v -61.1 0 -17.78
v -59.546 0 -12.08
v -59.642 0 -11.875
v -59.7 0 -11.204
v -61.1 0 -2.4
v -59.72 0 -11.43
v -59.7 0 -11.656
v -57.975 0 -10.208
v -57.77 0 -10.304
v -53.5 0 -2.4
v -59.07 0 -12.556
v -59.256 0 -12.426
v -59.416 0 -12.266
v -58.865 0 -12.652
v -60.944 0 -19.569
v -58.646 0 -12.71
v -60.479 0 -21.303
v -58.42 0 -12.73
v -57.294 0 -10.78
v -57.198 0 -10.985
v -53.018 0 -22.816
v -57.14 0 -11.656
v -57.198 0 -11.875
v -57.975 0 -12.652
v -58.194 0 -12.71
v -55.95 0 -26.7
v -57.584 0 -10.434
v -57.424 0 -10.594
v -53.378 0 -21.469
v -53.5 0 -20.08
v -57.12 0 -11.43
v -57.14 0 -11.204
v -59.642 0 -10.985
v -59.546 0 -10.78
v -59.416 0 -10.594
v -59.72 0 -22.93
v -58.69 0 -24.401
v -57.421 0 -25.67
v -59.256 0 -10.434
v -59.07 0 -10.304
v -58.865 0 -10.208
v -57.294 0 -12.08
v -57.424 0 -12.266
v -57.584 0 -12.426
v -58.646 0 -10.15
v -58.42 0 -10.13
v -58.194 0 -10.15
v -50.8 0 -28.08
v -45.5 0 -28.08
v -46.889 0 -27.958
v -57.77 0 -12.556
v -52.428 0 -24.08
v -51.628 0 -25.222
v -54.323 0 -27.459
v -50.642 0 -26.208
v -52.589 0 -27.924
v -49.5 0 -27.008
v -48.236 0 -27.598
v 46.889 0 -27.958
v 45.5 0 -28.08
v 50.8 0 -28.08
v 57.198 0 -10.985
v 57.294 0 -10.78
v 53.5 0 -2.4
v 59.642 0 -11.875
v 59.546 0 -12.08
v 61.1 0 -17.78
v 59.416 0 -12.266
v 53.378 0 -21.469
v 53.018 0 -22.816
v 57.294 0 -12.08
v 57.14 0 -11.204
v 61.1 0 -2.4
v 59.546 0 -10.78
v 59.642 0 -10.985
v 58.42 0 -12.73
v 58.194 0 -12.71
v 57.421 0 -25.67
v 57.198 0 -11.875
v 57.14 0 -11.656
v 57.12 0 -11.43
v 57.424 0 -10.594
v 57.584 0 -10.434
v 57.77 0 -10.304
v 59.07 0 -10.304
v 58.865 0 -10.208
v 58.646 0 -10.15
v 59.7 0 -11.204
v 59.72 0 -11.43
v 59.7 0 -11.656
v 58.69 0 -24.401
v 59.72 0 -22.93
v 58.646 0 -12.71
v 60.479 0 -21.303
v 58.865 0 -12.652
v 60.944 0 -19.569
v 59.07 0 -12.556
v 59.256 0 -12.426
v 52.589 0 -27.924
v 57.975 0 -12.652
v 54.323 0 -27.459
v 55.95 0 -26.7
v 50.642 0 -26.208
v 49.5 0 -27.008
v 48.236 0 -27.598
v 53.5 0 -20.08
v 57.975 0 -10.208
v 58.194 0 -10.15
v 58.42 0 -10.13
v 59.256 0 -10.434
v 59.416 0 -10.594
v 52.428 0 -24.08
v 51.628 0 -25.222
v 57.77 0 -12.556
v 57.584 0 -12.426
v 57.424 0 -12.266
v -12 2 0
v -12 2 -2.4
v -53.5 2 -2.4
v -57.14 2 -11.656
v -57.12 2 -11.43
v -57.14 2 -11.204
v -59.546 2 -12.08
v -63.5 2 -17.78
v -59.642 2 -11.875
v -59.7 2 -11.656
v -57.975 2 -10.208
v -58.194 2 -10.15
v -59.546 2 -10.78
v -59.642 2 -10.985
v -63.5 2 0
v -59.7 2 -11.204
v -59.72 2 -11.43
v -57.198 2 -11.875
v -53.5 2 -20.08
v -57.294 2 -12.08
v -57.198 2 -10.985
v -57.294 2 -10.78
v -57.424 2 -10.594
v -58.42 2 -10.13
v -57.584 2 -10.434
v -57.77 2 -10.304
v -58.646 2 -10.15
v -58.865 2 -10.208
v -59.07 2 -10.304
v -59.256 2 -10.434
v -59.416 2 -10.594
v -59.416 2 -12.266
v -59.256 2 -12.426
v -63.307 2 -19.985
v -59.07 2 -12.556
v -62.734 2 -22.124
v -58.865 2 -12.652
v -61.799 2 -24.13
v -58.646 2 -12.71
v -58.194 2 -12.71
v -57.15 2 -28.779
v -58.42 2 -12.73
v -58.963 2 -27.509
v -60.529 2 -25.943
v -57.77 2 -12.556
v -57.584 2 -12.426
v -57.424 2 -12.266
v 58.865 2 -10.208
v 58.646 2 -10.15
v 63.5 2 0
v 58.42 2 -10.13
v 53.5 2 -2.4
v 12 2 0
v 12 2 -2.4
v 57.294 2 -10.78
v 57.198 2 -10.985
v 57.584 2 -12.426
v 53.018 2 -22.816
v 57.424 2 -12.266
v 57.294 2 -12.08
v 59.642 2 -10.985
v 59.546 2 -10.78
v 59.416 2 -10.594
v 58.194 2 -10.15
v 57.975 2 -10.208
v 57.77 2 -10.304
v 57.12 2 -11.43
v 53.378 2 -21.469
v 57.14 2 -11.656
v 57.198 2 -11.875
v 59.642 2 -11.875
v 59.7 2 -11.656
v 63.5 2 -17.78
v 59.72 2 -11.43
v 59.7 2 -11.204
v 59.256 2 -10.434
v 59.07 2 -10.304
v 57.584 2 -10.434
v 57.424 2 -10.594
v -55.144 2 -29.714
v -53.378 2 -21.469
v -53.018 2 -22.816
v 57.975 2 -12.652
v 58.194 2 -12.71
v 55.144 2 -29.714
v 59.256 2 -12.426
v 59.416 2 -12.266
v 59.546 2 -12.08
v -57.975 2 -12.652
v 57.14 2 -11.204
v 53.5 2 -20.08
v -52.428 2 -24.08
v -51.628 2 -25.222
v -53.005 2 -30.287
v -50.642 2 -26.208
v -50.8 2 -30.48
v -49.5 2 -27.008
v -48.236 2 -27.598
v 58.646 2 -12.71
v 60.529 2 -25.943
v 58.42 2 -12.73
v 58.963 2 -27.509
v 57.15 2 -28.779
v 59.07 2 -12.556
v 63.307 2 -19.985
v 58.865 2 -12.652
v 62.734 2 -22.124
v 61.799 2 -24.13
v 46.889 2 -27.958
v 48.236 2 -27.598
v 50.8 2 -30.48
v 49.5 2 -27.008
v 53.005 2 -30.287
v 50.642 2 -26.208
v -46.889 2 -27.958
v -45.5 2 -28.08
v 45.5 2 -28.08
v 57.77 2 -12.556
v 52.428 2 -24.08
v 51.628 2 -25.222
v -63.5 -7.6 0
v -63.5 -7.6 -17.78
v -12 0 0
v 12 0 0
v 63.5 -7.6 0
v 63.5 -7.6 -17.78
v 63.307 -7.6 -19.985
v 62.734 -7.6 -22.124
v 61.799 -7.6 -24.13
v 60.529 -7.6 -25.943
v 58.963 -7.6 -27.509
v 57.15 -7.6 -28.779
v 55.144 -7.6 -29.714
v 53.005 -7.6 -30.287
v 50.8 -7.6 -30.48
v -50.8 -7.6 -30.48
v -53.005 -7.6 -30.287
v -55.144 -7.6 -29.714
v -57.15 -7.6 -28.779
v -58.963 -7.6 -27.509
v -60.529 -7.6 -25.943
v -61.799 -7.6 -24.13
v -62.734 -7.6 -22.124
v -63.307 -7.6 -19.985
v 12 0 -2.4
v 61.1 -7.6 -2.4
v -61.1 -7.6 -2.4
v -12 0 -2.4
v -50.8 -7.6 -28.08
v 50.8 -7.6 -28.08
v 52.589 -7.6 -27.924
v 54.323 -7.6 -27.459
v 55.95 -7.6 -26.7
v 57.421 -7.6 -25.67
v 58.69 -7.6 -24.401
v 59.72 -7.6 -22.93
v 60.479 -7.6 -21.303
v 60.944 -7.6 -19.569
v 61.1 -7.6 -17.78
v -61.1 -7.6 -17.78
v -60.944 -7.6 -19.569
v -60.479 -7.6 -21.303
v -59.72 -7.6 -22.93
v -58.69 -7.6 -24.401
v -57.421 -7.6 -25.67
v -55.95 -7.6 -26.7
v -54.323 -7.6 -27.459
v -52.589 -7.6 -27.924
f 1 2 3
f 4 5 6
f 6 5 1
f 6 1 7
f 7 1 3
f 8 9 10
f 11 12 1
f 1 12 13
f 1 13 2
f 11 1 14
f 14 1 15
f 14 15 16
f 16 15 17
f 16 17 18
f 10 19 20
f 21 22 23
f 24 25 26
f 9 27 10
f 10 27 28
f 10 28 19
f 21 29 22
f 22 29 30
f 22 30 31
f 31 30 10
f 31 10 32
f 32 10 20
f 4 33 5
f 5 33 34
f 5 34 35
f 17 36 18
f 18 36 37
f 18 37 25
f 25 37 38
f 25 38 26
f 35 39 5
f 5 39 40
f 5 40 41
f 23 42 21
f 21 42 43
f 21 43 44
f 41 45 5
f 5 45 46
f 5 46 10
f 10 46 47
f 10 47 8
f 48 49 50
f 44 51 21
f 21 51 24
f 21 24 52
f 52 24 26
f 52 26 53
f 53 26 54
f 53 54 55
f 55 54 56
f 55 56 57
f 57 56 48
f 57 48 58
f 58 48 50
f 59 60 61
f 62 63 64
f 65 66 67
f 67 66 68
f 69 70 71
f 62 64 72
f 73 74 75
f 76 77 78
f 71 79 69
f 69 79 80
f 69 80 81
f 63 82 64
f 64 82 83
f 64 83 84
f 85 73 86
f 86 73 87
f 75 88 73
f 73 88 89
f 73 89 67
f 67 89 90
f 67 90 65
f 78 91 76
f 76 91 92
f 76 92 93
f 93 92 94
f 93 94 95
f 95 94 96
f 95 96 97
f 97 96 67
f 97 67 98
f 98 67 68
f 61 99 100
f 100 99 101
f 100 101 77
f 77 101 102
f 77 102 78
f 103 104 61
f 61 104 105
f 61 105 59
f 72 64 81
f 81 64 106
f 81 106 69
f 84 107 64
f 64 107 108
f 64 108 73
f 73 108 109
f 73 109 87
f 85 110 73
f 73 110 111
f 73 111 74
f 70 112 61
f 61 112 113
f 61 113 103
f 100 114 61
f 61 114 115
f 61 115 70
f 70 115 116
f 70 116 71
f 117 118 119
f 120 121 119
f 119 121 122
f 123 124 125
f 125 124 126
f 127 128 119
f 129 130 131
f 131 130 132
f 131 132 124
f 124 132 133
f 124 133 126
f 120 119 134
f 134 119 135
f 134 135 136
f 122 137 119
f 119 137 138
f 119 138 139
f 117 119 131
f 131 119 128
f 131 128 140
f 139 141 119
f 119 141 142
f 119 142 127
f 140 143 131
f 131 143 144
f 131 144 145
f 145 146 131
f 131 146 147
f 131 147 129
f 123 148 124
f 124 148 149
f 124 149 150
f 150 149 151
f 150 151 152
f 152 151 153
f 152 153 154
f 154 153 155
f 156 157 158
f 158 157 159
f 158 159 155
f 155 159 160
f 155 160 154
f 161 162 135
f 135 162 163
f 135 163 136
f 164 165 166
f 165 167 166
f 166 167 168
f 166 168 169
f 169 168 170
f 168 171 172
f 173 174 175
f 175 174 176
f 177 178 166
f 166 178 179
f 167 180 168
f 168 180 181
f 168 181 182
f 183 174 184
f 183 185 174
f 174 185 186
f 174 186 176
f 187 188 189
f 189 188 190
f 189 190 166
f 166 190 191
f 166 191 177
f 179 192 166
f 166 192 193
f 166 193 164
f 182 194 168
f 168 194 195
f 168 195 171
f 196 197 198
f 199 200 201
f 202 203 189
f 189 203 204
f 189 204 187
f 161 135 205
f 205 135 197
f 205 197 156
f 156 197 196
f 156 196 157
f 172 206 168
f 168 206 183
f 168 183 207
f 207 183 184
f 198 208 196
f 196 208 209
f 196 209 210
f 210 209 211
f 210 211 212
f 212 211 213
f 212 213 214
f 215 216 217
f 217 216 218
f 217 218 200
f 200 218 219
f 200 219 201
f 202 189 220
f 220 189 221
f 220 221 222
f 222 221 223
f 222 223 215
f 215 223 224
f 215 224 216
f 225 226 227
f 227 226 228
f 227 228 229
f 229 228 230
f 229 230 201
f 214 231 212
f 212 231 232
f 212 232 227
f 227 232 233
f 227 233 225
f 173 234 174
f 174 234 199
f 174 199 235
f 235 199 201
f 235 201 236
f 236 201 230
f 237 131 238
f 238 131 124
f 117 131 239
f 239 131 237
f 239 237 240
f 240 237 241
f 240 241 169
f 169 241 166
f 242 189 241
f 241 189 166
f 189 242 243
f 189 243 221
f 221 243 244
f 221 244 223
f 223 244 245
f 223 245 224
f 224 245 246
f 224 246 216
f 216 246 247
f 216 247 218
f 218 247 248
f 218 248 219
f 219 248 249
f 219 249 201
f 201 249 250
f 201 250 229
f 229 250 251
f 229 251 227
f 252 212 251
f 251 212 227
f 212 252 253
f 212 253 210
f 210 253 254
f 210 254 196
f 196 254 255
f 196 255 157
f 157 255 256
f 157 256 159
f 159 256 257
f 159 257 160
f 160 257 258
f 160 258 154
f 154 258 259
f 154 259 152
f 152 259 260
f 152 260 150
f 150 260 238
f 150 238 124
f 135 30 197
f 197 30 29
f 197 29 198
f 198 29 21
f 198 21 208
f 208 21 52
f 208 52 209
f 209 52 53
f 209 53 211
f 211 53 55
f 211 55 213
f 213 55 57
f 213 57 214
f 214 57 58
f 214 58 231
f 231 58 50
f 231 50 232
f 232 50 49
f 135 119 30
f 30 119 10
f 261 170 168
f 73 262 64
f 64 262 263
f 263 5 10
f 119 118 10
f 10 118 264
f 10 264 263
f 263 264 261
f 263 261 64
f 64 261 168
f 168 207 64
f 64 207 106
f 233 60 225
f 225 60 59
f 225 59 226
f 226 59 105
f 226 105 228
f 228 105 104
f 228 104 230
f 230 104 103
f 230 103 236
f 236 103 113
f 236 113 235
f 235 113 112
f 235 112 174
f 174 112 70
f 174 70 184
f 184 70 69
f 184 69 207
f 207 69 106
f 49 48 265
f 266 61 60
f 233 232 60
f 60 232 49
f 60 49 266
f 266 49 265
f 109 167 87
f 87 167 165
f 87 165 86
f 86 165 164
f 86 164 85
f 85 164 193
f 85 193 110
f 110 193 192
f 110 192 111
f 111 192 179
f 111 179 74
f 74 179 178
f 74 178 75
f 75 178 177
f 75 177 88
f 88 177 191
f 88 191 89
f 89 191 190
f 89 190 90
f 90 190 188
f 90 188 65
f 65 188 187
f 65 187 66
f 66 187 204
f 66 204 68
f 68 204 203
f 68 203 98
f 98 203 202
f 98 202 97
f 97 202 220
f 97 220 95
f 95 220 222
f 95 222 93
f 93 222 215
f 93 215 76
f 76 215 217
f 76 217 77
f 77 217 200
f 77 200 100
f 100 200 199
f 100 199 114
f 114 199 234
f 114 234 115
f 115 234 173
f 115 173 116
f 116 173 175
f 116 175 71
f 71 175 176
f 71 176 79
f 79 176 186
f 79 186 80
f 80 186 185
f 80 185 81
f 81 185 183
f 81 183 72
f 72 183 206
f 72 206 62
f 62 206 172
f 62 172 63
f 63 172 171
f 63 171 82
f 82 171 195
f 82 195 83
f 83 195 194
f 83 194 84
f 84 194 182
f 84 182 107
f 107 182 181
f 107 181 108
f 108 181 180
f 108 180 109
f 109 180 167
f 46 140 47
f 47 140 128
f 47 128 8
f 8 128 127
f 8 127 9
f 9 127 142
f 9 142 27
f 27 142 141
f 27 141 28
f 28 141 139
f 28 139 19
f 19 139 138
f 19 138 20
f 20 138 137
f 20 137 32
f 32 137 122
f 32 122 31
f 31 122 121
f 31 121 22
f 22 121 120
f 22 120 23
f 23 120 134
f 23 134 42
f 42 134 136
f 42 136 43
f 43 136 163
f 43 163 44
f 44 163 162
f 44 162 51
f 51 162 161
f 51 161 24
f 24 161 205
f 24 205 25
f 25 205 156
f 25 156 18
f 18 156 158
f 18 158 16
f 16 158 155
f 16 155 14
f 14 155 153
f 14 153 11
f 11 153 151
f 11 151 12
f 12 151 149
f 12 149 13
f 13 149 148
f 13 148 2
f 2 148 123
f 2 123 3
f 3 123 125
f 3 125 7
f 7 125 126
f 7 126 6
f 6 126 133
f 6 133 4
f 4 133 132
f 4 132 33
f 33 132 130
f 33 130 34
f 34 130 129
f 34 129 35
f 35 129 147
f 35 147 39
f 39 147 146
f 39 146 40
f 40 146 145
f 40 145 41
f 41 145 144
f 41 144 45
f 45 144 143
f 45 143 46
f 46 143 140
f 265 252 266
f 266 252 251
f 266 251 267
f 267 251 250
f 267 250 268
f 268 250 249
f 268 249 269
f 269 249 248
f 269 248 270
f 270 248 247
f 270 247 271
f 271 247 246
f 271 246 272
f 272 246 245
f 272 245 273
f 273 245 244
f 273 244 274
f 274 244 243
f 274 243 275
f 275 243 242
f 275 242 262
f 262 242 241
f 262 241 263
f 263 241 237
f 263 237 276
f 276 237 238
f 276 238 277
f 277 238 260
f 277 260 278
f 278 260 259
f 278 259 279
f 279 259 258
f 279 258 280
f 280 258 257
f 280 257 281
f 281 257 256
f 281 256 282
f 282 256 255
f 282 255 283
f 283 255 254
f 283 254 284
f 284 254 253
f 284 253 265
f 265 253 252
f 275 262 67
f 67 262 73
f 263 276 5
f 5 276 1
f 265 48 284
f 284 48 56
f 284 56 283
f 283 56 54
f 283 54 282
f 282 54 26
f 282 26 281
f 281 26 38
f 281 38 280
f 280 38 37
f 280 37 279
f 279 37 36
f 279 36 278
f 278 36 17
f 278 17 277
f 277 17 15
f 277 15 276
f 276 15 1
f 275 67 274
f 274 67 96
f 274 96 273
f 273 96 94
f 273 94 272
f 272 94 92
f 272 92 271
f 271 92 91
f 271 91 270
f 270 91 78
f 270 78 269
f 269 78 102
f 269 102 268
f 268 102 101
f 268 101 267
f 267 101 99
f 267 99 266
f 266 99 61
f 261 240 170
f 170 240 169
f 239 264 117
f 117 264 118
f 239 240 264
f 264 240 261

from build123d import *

# Parameters (mm, degrees)
BOSS_EXTRUDE1_DEPTH  = 2
M2_CLEARANCE_HOLE1_D = 2.6
BOSS_EXTRUDE2_START  = 7.6
BOSS_EXTRUDE2_DEPTH  = 7.6
SKETCH9_W            = 24
SKETCH9_H            = 2.4
CUT_EXTRUDE1_DEPTH   = 2


with BuildPart() as part:
    # Sketch1 → Boss-Extrude1 (new body)
    with BuildSketch(Plane(origin=(0, 0, 0), x_dir=(1, 0, 0), z_dir=(0, 1, 0))):
        with BuildLine():
            Line((-63.5, 0), (-53.5, 0))
            Line((-53.5, 0), (53.5, 0))
            Line((53.5, 0), (63.5, 0))
            Line((63.5, 0), (63.5, 17.78))
            ThreePointArc((63.5, 17.78), (59.780256121, 26.760256121), (50.8, 30.48))
            Line((50.8, 30.48), (-50.8, 30.48))
            ThreePointArc((-50.8, 30.48), (-59.780256121, 26.760256121), (-63.5, 17.78))
            Line((-63.5, 17.78), (-63.5, 0))
        make_face()
        with BuildLine():
            Line((-53.5, 2.4), (-53.5, 20.08))
            ThreePointArc((-53.5, 20.08), (-51.156854249, 25.736854249), (-45.5, 28.08))
            Line((-45.5, 28.08), (45.5, 28.08))
            ThreePointArc((45.5, 28.08), (51.156854249, 25.736854249), (53.5, 20.08))
            Line((53.5, 20.08), (53.5, 2.4))
            Line((53.5, 2.4), (-53.5, 2.4))
        make_face(mode=Mode.SUBTRACT)
    extrude(amount=BOSS_EXTRUDE1_DEPTH)

    # M2 Clearance Hole1 (through all)
    with Locations(Plane(origin=(0, 2, 0), x_dir=(1, 0, 0), z_dir=(0, 1, 0))):
        with Locations((-58.42, 11.43), (58.42, 11.43)):
            Hole(M2_CLEARANCE_HOLE1_D / 2)

    # Sketch8 → Boss-Extrude2 (add)
    with BuildSketch(Plane(origin=(0, 0, 0), x_dir=(-1, 0, 0), z_dir=(0, -1, 0)).offset(BOSS_EXTRUDE2_START)):
        with BuildLine():
            Line((63.5, 0), (63.5, 17.78))
            ThreePointArc((63.5, 17.78), (59.780256121, 26.760256121), (50.8, 30.48))
            Line((50.8, 30.48), (-50.8, 30.48))
            ThreePointArc((-50.8, 30.48), (-59.780256121, 26.760256121), (-63.5, 17.78))
            Line((-63.5, 17.78), (-63.5, 0))
            Line((-63.5, 0), (63.5, 0))
        make_face()
        with BuildLine():
            Line((-61.1, 2.4), (61.1, 2.4))
            Line((61.1, 2.4), (61.1, 17.78))
            ThreePointArc((61.1, 17.78), (58.083199846, 25.063199846), (50.8, 28.08))
            Line((50.8, 28.08), (-50.8, 28.08))
            ThreePointArc((-50.8, 28.08), (-58.083199846, 25.063199846), (-61.1, 17.78))
            Line((-61.1, 17.78), (-61.1, 2.4))
        make_face(mode=Mode.SUBTRACT)
    extrude(amount=-BOSS_EXTRUDE2_DEPTH)

    # Sketch9 → Cut-Extrude1 (cut)
    with BuildSketch(Plane(origin=(0, 2, 0), x_dir=(1, 0, 0), z_dir=(0, 1, 0))):
        with Locations((0, 1.2)):
            Rectangle(SKETCH9_W, SKETCH9_H)
    extrude(amount=-CUT_EXTRUDE1_DEPTH, mode=Mode.SUBTRACT)


solid = part.part
